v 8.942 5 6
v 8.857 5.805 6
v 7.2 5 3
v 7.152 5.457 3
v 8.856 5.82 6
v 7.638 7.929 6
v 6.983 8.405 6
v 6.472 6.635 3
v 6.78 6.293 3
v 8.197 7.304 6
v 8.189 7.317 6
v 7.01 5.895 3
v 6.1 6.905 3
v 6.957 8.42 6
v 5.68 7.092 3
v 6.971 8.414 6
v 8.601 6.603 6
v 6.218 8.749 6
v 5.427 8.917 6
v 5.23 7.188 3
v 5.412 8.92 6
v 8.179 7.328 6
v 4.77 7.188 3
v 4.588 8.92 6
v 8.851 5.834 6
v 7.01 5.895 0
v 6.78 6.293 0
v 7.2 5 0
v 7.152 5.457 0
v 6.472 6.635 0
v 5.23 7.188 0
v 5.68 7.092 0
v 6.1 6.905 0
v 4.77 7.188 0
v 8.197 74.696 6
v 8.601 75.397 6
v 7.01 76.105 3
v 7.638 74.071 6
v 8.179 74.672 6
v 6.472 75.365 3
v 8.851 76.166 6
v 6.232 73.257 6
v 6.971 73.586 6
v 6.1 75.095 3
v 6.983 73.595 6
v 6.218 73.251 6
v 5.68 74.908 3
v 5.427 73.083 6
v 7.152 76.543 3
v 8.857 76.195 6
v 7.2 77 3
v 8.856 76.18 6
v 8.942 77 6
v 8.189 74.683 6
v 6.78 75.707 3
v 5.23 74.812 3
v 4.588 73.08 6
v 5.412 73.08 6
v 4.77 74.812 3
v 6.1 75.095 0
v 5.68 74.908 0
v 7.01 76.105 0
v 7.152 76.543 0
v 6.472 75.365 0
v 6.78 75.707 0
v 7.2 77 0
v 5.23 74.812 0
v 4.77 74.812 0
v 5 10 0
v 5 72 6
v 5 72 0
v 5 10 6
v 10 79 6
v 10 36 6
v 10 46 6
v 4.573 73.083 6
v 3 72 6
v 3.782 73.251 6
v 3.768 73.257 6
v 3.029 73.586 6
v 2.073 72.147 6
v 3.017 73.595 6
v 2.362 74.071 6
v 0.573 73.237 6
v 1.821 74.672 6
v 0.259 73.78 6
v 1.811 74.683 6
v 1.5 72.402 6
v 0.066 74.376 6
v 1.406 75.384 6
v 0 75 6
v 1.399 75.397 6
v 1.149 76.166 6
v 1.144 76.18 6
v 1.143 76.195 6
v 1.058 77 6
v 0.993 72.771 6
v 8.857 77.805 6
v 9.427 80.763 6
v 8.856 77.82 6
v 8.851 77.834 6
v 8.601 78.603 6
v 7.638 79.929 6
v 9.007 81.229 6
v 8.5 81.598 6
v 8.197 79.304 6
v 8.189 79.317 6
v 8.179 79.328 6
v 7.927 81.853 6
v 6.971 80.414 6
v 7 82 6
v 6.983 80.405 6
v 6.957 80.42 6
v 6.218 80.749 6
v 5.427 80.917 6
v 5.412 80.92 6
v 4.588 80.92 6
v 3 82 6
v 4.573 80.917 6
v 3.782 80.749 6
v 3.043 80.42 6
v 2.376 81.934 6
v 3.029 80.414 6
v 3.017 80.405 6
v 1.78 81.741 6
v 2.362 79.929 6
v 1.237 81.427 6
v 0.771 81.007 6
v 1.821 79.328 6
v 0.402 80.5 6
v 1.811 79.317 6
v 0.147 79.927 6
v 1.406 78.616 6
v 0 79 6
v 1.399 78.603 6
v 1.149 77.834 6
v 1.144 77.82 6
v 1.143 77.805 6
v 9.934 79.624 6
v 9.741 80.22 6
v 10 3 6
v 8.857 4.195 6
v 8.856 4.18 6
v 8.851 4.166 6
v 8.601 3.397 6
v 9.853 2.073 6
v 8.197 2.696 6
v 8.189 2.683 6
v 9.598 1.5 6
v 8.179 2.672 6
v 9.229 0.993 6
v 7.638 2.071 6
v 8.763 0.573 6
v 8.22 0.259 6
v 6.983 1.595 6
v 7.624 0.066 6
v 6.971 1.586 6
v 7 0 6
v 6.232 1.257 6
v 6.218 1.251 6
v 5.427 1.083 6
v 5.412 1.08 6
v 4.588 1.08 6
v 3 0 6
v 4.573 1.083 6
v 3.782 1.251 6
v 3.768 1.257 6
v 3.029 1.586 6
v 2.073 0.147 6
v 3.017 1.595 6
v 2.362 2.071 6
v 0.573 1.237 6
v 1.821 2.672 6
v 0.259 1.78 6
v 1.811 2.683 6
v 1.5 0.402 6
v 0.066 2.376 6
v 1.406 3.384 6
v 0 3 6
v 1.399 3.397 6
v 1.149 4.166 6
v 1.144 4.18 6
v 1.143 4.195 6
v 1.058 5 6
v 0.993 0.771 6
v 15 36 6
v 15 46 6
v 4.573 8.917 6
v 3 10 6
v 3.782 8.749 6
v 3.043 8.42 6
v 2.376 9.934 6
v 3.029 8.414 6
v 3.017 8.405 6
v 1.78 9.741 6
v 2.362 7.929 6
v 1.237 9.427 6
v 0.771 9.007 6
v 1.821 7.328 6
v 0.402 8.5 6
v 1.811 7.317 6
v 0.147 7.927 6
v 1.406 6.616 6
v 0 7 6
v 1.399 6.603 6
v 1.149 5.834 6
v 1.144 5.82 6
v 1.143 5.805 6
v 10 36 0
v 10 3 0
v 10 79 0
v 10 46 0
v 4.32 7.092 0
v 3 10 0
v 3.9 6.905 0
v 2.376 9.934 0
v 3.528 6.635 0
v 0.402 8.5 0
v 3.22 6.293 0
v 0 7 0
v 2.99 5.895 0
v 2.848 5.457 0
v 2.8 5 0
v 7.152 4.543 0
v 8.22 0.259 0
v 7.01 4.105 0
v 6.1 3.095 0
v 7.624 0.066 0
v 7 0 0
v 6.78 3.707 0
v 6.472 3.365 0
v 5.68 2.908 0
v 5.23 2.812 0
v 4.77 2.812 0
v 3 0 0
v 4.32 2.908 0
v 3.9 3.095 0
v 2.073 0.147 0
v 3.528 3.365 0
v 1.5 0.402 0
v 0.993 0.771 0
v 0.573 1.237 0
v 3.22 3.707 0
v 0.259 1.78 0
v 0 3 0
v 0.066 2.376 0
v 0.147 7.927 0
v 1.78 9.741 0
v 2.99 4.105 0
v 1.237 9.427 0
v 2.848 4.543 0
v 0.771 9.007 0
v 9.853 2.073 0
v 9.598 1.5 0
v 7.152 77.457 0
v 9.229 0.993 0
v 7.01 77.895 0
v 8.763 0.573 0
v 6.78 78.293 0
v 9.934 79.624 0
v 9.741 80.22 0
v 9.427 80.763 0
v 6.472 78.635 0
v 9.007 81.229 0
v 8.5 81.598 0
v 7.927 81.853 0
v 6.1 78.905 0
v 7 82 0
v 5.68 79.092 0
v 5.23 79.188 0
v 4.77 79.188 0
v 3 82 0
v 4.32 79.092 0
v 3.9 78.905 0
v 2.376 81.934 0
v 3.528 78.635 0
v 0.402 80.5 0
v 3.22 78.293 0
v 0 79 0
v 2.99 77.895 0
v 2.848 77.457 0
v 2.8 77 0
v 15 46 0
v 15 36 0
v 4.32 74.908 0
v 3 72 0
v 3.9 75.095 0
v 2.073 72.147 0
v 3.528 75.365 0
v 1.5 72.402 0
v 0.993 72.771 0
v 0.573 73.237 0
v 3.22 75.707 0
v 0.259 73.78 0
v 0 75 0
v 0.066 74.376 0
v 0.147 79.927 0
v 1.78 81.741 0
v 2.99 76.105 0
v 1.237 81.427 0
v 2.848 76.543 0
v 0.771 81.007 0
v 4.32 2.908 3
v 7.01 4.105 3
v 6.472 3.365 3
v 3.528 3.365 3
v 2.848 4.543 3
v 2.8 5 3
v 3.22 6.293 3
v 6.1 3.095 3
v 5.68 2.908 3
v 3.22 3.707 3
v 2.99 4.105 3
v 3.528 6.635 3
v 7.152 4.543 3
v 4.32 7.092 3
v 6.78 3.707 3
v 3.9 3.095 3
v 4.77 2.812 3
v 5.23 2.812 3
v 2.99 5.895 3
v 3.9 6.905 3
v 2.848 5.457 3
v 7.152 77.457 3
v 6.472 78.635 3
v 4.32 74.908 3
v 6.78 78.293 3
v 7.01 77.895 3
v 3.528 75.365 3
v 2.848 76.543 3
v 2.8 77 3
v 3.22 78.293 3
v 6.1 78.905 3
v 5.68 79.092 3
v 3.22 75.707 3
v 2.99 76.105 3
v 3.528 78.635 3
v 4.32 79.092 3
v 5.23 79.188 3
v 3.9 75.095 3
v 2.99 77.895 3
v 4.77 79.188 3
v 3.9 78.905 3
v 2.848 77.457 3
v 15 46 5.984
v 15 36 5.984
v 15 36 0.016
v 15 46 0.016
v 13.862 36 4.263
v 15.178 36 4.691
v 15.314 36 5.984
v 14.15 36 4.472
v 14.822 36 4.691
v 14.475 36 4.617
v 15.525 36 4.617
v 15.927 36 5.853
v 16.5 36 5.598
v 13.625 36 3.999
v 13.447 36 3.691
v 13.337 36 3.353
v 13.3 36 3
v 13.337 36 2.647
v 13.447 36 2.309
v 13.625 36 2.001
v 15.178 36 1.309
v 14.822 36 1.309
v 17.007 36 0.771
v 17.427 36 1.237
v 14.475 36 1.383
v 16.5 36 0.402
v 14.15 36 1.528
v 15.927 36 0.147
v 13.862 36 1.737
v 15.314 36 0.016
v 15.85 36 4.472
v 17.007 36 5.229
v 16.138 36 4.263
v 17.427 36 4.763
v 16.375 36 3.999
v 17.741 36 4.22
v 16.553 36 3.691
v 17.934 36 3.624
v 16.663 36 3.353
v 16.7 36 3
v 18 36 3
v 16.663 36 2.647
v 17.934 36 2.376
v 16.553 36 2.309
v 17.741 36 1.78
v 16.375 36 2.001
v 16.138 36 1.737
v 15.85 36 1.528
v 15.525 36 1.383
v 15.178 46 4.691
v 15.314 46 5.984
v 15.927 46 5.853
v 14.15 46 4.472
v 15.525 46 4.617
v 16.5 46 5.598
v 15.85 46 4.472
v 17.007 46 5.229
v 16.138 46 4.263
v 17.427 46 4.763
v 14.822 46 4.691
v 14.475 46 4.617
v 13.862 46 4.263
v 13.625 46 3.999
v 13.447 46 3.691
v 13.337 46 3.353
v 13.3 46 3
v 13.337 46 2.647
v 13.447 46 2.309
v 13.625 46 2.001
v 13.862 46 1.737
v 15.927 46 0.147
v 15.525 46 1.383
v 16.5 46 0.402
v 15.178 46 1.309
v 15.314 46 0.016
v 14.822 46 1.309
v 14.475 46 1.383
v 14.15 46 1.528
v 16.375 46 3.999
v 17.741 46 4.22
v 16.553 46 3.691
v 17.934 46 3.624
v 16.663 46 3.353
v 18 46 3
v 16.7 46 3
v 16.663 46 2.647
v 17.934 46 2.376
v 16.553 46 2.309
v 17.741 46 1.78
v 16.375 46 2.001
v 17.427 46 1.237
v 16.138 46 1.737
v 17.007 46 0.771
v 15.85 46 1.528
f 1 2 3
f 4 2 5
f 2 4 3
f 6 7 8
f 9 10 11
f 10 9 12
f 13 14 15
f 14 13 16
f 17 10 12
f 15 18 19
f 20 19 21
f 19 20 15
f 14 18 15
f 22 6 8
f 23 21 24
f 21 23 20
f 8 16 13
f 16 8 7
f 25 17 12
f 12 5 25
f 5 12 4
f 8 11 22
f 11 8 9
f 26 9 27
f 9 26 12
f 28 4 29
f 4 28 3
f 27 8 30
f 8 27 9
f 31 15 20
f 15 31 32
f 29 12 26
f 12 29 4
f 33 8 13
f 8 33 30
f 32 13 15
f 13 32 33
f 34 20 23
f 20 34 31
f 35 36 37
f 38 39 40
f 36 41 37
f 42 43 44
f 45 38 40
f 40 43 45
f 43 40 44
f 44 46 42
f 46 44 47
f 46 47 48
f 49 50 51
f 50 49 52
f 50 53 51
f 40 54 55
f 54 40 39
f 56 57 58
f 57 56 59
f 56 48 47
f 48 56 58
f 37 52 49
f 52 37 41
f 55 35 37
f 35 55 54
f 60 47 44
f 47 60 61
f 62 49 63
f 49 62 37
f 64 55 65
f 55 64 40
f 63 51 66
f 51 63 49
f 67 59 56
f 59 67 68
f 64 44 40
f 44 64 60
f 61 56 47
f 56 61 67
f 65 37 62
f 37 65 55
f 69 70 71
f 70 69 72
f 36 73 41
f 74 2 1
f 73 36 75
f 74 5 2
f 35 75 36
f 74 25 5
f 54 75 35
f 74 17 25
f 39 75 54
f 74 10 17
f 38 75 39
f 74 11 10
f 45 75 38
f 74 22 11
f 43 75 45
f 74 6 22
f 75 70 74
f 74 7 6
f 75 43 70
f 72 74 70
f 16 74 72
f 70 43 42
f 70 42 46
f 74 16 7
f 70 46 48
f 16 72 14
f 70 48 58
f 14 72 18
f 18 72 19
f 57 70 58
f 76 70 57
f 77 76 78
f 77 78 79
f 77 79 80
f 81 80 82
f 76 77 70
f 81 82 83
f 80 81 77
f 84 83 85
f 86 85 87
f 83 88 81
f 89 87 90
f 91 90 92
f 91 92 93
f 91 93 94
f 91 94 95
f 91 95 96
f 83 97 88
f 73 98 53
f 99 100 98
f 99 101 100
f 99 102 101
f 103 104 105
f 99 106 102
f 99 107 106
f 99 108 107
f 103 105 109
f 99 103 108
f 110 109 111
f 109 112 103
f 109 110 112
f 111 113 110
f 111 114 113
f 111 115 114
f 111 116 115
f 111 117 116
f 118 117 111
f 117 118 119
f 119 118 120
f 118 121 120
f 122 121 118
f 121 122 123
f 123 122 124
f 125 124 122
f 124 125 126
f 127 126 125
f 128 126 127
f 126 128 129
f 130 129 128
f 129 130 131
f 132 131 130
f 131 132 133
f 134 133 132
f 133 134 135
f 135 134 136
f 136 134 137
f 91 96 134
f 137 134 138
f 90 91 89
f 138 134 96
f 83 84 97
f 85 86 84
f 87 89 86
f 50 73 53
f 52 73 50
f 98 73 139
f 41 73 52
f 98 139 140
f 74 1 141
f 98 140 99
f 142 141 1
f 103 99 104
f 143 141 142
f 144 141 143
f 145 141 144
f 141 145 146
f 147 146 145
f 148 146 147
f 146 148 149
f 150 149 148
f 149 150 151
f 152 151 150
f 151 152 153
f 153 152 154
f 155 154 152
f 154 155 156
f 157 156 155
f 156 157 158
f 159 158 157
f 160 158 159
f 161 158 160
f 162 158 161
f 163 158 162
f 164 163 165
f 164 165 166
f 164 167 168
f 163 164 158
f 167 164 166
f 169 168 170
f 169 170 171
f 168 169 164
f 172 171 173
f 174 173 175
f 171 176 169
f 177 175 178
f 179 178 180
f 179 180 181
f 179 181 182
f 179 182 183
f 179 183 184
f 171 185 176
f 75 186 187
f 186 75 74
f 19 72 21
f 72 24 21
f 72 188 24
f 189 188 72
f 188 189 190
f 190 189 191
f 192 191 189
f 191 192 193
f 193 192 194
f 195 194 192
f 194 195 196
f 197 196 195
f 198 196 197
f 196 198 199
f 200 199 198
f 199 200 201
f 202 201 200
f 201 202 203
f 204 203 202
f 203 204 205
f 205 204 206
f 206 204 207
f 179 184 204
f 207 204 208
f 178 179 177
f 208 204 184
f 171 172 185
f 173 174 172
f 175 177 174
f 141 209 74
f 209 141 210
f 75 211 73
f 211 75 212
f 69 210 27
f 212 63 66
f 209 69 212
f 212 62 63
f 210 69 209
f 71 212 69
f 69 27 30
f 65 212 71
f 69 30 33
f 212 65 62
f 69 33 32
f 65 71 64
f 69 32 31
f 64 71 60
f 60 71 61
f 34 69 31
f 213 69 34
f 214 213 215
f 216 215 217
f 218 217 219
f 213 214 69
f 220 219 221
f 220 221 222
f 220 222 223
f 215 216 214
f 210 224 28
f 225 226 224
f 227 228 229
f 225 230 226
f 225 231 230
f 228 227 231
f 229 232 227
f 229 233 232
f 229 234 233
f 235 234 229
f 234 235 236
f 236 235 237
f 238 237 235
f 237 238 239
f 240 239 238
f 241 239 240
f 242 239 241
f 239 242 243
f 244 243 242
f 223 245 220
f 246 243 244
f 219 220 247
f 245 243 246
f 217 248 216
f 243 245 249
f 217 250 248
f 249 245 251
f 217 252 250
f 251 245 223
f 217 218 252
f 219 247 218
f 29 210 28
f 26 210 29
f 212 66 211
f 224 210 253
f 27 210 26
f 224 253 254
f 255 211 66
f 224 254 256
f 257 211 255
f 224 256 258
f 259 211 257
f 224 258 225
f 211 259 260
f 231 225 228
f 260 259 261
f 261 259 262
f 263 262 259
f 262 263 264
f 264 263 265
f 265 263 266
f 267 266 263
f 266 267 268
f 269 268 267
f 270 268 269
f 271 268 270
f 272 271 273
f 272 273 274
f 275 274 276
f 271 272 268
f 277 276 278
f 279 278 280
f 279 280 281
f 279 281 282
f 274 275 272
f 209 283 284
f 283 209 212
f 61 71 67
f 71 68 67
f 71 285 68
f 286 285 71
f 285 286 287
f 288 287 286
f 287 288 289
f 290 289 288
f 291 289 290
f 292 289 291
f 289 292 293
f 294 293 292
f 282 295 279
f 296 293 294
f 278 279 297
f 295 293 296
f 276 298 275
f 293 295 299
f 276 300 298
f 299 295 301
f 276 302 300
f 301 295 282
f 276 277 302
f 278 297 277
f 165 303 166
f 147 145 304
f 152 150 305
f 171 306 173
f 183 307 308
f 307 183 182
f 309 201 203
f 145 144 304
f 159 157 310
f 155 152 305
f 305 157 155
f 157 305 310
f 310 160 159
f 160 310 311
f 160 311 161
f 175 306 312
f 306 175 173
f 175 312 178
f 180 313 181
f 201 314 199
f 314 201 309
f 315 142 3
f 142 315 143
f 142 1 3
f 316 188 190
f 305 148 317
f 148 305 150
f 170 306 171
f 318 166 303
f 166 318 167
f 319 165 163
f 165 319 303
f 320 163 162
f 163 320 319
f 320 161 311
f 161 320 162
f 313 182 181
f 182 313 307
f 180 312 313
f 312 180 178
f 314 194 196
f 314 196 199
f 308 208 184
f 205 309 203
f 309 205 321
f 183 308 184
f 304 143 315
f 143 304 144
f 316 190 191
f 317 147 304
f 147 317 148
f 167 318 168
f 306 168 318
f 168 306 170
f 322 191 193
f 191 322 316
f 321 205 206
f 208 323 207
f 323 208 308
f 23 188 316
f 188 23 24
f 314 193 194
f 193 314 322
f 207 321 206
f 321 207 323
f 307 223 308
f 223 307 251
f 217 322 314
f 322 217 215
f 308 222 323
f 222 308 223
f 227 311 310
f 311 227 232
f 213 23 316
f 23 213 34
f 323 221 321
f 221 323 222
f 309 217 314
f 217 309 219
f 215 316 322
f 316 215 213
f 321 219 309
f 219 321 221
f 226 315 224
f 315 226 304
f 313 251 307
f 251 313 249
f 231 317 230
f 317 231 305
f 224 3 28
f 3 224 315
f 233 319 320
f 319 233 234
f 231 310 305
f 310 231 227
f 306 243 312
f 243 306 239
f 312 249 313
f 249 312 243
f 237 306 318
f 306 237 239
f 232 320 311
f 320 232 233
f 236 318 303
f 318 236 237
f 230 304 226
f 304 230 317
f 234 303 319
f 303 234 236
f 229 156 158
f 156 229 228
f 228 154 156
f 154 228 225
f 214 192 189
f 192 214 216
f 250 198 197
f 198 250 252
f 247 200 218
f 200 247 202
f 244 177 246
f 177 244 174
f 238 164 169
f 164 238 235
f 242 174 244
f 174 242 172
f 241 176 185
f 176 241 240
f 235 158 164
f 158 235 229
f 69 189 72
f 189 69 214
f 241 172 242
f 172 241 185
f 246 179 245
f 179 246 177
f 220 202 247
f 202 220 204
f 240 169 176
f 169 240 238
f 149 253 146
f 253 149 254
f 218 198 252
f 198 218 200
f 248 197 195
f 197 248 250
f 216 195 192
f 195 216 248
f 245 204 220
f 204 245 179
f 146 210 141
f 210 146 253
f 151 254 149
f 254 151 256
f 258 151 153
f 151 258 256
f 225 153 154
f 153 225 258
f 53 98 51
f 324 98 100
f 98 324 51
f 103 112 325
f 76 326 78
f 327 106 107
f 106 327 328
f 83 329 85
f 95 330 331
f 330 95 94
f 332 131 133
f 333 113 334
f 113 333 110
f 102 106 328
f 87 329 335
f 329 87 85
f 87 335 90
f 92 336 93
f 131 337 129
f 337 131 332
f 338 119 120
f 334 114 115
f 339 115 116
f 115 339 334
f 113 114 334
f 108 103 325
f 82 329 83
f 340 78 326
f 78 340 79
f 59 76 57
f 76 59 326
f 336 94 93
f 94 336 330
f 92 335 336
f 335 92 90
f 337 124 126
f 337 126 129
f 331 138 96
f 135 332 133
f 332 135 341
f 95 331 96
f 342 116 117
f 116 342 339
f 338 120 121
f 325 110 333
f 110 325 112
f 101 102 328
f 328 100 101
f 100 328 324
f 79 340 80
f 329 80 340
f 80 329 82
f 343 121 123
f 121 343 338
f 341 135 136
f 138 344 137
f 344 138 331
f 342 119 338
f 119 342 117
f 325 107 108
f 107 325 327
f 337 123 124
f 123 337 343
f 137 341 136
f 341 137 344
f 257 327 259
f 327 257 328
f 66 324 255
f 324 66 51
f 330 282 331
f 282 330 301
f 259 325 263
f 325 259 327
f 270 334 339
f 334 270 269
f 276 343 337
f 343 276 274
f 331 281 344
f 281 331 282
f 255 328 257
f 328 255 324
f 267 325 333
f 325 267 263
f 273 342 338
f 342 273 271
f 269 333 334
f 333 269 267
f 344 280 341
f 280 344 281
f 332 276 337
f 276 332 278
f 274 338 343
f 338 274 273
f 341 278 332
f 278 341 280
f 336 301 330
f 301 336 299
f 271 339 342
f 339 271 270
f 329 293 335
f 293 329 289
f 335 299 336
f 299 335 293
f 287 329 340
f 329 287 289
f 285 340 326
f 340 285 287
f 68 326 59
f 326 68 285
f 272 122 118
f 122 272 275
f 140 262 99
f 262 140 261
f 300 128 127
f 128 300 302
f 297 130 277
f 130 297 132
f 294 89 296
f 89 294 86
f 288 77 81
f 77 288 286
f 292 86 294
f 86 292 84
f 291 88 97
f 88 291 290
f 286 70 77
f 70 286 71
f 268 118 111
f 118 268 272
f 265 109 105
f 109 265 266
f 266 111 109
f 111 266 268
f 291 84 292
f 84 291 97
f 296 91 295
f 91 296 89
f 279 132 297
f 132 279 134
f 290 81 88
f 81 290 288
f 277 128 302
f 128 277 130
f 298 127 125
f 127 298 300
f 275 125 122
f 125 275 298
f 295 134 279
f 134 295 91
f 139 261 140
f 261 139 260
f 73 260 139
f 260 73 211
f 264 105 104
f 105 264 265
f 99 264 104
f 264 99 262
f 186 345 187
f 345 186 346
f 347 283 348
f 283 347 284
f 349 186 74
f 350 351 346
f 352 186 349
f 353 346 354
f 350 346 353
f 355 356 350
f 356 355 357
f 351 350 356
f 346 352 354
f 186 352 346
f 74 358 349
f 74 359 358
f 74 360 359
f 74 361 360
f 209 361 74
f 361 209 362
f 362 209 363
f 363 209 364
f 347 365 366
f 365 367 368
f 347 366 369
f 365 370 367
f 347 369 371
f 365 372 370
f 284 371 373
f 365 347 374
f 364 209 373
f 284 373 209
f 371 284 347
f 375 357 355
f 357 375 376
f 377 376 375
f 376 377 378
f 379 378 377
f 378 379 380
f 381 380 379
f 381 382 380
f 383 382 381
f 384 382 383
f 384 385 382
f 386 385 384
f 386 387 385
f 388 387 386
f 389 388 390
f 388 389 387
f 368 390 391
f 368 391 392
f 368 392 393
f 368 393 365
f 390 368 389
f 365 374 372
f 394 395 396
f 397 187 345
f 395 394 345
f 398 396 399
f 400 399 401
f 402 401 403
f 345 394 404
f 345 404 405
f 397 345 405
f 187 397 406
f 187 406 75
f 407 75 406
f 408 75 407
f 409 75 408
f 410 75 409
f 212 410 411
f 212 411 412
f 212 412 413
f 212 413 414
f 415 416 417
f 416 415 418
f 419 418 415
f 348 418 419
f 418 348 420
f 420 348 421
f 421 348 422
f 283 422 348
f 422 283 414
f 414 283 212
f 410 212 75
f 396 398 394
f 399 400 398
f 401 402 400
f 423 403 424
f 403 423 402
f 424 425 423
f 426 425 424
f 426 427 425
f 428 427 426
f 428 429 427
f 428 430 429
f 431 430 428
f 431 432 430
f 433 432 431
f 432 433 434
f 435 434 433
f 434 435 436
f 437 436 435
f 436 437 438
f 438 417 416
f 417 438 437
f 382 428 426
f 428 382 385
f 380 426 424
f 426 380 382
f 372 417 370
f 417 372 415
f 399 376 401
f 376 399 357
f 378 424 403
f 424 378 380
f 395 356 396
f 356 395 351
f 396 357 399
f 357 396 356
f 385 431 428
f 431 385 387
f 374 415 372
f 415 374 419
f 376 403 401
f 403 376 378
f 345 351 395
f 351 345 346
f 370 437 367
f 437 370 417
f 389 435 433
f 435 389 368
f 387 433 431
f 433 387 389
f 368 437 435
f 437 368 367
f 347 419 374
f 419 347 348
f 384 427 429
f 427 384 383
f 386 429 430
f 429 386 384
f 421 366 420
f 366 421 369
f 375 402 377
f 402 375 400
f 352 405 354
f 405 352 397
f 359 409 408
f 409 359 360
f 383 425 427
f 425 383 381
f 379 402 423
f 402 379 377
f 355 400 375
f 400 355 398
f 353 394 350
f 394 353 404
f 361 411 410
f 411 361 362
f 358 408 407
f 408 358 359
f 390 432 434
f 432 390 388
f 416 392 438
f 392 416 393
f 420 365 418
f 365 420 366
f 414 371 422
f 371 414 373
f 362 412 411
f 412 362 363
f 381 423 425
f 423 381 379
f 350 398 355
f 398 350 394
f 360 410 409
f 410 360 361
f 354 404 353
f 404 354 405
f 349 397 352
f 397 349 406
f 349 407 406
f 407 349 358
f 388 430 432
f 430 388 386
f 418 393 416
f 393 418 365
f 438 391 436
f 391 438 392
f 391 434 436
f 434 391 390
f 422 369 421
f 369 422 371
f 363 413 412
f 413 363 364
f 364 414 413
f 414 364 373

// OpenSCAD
// file: config.scad
/**
 * Глобальный конфигурационный файл
 */
// качество цилиндров
$fn=30;

// избегание совпадения граней
DELTA=0.1;

// толщина рамы
FRAME=15;
// main file
include <config.scad>

//расстояние между отверстиями
y1=72;

module hole(){
        translate([2,2,3])cylinder(r1=4.4/2,r2=4,h=3+DELTA);
        translate([2,2,-DELTA])cylinder(r=4.4/2,h=3+2*DELTA);
}
module extra(){
    difference(){
        linear_extrude(height=6)offset(r=3)square(4);
        hole();
    }
}

module holder_part04() {
translate([5,5,0]){
    difference() {
        cube([5,y1,6]);
        translate([-2,-2,0])hole();
        translate([-2,y1-2,0])hole();
    }
    translate([-2,-2,0])extra();
    translate([-2,y1-2,0])extra();
}
translate([10,y1/2,0]){
    difference(){
        union(){
            cube([5,10,6]);
            translate([5,10,3])
            rotate([90,0,0])
            cylinder(r=6/2,h=10);
        }
        translate([5,10+DELTA,3])rotate([90,0,0])cylinder(r=3.4/2,h=10+2*DELTA);
    }
}
}

holder_part04();
